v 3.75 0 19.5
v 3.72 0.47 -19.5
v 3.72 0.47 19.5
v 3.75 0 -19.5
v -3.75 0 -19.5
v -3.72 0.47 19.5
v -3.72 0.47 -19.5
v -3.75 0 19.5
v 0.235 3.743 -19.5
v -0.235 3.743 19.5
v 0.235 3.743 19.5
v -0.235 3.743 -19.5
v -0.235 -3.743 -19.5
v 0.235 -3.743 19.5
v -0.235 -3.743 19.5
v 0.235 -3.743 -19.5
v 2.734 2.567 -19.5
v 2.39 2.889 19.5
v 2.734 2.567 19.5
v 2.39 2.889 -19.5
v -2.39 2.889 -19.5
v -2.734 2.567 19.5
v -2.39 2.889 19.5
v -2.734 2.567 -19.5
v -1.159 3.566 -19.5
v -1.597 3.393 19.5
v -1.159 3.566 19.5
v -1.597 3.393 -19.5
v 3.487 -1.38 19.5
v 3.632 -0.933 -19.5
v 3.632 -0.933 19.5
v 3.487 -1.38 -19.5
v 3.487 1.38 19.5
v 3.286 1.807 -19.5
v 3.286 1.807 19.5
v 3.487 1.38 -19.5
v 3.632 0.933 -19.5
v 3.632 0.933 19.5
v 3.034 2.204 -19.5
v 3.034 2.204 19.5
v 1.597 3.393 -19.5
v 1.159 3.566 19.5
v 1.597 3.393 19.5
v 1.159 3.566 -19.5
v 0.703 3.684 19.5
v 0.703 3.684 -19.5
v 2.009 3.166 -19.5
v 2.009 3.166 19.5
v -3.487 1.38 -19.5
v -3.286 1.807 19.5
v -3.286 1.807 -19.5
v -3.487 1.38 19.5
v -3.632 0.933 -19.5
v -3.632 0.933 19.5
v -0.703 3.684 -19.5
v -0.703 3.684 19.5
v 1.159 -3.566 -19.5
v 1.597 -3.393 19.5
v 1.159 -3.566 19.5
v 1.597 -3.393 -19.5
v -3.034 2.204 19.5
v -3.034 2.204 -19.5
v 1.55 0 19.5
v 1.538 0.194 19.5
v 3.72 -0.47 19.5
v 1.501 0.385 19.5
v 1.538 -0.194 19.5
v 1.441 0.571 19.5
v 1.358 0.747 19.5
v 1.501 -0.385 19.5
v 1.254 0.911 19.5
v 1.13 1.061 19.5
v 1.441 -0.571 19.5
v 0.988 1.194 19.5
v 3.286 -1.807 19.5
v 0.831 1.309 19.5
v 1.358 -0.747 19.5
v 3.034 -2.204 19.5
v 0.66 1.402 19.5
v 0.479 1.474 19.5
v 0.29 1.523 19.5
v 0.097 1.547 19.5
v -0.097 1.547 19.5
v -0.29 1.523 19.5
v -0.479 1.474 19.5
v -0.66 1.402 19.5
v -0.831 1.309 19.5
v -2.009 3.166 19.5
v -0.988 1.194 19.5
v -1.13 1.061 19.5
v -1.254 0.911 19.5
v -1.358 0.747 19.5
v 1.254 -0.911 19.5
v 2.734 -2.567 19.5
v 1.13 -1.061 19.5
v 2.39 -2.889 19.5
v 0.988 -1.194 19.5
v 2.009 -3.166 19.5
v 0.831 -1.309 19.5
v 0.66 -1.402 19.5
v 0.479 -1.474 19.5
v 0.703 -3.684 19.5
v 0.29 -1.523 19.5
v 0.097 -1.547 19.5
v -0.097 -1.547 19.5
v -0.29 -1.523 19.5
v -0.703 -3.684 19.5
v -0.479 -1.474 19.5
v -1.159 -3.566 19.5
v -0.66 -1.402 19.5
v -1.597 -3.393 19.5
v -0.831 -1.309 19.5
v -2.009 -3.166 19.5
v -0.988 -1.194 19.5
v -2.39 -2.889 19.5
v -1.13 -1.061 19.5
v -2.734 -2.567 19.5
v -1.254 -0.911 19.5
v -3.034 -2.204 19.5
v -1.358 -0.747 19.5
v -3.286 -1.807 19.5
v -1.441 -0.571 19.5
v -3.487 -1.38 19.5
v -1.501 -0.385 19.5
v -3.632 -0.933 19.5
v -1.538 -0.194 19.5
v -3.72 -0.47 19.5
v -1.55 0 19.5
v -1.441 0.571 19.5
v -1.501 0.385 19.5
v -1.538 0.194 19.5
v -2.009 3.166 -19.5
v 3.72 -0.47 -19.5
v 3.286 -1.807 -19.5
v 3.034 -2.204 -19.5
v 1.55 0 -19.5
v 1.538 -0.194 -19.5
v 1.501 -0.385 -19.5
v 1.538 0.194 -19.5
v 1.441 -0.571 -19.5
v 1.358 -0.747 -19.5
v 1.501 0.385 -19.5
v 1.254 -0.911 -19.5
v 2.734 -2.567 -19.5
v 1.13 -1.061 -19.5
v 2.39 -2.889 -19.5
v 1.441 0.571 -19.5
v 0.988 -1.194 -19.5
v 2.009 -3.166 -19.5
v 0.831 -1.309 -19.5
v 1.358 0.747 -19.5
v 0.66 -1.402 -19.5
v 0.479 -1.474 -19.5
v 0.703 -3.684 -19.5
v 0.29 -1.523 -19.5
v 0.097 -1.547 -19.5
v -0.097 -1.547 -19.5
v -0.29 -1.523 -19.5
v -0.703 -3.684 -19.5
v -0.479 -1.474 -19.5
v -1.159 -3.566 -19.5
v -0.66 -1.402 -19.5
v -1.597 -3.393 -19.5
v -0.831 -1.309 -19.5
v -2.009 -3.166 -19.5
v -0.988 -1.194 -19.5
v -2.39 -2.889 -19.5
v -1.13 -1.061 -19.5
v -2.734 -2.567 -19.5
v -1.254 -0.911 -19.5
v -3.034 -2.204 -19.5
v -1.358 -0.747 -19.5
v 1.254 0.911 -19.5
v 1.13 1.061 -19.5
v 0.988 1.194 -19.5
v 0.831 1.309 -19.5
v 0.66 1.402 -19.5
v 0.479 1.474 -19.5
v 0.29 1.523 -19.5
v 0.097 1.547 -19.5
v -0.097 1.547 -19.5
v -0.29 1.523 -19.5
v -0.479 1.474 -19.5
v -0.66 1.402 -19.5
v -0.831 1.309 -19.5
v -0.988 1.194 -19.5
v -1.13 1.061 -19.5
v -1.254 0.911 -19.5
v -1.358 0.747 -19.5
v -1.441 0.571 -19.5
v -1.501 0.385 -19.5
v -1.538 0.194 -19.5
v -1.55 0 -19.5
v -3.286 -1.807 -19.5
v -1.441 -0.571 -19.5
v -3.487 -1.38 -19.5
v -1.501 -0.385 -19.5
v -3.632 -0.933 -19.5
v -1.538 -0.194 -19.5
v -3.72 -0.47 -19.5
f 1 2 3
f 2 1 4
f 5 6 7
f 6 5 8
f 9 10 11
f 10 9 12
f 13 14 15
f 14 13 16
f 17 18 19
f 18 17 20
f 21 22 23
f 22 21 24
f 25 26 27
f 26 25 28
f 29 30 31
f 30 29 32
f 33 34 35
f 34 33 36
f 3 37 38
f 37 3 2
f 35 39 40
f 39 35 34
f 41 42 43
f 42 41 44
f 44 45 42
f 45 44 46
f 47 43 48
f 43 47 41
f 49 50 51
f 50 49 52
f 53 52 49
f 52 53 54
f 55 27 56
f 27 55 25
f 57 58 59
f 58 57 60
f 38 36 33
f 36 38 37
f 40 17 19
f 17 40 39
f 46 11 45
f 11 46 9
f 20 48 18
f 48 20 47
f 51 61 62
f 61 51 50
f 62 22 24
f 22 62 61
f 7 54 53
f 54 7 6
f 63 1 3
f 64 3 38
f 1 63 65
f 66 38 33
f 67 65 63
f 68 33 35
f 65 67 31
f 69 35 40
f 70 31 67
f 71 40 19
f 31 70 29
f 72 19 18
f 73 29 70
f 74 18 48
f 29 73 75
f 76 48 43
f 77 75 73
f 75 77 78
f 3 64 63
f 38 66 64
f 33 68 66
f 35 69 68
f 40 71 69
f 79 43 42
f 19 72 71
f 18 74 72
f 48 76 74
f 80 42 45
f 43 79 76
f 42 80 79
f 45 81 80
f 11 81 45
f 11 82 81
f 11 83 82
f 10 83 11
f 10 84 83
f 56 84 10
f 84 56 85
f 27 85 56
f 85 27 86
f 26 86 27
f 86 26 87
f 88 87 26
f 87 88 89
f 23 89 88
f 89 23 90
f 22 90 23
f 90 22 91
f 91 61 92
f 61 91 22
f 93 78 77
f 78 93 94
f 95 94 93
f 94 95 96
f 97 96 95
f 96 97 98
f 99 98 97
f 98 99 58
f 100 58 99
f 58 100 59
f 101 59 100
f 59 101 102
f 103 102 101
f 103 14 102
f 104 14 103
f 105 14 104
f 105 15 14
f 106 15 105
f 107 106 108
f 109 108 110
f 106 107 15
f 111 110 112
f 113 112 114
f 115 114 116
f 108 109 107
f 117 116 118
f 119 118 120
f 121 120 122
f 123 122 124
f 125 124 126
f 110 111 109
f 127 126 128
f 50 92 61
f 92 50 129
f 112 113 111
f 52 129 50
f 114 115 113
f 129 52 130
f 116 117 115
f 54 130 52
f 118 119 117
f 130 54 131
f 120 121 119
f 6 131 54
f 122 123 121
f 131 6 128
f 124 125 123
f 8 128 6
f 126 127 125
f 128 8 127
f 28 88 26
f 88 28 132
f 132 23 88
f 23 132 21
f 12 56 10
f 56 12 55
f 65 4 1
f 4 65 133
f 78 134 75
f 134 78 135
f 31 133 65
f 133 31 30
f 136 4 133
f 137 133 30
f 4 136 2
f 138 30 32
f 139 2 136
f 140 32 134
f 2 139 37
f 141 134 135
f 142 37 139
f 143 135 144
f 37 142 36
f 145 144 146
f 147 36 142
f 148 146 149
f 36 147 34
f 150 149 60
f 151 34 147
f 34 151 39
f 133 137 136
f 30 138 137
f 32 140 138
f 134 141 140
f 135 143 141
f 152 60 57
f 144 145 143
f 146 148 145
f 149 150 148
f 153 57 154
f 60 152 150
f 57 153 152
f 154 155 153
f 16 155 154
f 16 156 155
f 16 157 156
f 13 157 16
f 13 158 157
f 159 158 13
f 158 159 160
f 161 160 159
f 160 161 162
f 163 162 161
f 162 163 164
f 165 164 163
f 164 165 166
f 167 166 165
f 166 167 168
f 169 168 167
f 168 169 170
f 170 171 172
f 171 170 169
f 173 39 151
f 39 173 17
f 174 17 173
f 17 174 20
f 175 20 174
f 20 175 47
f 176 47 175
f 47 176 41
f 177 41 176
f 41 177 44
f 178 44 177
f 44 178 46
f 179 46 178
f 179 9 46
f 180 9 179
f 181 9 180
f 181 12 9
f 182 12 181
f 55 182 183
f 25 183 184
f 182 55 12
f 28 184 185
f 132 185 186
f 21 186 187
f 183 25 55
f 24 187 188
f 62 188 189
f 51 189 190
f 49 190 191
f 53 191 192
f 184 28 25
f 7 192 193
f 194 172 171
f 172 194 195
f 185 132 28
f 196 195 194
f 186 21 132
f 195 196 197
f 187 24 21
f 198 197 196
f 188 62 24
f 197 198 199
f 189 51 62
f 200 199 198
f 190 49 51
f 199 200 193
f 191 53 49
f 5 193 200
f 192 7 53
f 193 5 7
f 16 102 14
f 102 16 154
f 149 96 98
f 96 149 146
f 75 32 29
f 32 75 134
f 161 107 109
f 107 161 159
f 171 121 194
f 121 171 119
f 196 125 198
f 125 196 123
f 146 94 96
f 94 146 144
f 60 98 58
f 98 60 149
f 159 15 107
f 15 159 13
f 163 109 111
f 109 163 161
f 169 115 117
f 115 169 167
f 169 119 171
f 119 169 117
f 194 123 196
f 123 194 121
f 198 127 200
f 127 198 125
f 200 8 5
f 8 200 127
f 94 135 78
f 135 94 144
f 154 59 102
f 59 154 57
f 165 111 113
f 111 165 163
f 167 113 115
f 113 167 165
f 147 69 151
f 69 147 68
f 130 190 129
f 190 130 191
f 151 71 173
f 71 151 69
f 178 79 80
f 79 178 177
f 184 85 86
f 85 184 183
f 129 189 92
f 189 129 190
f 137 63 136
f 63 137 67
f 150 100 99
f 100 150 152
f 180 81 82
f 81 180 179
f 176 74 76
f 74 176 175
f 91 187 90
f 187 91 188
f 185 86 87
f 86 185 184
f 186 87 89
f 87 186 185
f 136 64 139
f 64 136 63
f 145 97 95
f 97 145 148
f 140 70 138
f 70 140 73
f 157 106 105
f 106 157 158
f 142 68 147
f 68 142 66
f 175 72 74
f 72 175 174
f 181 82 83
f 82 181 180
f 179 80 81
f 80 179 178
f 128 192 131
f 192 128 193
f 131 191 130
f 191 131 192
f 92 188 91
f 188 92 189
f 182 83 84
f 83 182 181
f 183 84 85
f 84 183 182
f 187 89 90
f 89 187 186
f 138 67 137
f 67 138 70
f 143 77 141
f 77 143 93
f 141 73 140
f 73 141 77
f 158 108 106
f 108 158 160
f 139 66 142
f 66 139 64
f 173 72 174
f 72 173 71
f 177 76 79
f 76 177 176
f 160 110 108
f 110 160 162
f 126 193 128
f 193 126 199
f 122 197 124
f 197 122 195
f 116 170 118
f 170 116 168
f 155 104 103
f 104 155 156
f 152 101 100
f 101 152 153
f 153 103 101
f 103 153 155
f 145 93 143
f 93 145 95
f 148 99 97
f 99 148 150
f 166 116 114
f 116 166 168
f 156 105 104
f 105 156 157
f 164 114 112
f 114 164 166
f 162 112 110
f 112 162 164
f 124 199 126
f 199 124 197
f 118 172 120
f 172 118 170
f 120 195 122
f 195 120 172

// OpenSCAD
$fn = 50;


difference() {
	union() {
		translate(v = [0, 0, -19.5000000000]) {
			cylinder(h = 39, r = 3.7500000000);
		}
	}
	union() {
		translate(v = [0, 0, -100.0000000000]) {
			cylinder(h = 200, r = 1.5500000000);
		}
	}
}
